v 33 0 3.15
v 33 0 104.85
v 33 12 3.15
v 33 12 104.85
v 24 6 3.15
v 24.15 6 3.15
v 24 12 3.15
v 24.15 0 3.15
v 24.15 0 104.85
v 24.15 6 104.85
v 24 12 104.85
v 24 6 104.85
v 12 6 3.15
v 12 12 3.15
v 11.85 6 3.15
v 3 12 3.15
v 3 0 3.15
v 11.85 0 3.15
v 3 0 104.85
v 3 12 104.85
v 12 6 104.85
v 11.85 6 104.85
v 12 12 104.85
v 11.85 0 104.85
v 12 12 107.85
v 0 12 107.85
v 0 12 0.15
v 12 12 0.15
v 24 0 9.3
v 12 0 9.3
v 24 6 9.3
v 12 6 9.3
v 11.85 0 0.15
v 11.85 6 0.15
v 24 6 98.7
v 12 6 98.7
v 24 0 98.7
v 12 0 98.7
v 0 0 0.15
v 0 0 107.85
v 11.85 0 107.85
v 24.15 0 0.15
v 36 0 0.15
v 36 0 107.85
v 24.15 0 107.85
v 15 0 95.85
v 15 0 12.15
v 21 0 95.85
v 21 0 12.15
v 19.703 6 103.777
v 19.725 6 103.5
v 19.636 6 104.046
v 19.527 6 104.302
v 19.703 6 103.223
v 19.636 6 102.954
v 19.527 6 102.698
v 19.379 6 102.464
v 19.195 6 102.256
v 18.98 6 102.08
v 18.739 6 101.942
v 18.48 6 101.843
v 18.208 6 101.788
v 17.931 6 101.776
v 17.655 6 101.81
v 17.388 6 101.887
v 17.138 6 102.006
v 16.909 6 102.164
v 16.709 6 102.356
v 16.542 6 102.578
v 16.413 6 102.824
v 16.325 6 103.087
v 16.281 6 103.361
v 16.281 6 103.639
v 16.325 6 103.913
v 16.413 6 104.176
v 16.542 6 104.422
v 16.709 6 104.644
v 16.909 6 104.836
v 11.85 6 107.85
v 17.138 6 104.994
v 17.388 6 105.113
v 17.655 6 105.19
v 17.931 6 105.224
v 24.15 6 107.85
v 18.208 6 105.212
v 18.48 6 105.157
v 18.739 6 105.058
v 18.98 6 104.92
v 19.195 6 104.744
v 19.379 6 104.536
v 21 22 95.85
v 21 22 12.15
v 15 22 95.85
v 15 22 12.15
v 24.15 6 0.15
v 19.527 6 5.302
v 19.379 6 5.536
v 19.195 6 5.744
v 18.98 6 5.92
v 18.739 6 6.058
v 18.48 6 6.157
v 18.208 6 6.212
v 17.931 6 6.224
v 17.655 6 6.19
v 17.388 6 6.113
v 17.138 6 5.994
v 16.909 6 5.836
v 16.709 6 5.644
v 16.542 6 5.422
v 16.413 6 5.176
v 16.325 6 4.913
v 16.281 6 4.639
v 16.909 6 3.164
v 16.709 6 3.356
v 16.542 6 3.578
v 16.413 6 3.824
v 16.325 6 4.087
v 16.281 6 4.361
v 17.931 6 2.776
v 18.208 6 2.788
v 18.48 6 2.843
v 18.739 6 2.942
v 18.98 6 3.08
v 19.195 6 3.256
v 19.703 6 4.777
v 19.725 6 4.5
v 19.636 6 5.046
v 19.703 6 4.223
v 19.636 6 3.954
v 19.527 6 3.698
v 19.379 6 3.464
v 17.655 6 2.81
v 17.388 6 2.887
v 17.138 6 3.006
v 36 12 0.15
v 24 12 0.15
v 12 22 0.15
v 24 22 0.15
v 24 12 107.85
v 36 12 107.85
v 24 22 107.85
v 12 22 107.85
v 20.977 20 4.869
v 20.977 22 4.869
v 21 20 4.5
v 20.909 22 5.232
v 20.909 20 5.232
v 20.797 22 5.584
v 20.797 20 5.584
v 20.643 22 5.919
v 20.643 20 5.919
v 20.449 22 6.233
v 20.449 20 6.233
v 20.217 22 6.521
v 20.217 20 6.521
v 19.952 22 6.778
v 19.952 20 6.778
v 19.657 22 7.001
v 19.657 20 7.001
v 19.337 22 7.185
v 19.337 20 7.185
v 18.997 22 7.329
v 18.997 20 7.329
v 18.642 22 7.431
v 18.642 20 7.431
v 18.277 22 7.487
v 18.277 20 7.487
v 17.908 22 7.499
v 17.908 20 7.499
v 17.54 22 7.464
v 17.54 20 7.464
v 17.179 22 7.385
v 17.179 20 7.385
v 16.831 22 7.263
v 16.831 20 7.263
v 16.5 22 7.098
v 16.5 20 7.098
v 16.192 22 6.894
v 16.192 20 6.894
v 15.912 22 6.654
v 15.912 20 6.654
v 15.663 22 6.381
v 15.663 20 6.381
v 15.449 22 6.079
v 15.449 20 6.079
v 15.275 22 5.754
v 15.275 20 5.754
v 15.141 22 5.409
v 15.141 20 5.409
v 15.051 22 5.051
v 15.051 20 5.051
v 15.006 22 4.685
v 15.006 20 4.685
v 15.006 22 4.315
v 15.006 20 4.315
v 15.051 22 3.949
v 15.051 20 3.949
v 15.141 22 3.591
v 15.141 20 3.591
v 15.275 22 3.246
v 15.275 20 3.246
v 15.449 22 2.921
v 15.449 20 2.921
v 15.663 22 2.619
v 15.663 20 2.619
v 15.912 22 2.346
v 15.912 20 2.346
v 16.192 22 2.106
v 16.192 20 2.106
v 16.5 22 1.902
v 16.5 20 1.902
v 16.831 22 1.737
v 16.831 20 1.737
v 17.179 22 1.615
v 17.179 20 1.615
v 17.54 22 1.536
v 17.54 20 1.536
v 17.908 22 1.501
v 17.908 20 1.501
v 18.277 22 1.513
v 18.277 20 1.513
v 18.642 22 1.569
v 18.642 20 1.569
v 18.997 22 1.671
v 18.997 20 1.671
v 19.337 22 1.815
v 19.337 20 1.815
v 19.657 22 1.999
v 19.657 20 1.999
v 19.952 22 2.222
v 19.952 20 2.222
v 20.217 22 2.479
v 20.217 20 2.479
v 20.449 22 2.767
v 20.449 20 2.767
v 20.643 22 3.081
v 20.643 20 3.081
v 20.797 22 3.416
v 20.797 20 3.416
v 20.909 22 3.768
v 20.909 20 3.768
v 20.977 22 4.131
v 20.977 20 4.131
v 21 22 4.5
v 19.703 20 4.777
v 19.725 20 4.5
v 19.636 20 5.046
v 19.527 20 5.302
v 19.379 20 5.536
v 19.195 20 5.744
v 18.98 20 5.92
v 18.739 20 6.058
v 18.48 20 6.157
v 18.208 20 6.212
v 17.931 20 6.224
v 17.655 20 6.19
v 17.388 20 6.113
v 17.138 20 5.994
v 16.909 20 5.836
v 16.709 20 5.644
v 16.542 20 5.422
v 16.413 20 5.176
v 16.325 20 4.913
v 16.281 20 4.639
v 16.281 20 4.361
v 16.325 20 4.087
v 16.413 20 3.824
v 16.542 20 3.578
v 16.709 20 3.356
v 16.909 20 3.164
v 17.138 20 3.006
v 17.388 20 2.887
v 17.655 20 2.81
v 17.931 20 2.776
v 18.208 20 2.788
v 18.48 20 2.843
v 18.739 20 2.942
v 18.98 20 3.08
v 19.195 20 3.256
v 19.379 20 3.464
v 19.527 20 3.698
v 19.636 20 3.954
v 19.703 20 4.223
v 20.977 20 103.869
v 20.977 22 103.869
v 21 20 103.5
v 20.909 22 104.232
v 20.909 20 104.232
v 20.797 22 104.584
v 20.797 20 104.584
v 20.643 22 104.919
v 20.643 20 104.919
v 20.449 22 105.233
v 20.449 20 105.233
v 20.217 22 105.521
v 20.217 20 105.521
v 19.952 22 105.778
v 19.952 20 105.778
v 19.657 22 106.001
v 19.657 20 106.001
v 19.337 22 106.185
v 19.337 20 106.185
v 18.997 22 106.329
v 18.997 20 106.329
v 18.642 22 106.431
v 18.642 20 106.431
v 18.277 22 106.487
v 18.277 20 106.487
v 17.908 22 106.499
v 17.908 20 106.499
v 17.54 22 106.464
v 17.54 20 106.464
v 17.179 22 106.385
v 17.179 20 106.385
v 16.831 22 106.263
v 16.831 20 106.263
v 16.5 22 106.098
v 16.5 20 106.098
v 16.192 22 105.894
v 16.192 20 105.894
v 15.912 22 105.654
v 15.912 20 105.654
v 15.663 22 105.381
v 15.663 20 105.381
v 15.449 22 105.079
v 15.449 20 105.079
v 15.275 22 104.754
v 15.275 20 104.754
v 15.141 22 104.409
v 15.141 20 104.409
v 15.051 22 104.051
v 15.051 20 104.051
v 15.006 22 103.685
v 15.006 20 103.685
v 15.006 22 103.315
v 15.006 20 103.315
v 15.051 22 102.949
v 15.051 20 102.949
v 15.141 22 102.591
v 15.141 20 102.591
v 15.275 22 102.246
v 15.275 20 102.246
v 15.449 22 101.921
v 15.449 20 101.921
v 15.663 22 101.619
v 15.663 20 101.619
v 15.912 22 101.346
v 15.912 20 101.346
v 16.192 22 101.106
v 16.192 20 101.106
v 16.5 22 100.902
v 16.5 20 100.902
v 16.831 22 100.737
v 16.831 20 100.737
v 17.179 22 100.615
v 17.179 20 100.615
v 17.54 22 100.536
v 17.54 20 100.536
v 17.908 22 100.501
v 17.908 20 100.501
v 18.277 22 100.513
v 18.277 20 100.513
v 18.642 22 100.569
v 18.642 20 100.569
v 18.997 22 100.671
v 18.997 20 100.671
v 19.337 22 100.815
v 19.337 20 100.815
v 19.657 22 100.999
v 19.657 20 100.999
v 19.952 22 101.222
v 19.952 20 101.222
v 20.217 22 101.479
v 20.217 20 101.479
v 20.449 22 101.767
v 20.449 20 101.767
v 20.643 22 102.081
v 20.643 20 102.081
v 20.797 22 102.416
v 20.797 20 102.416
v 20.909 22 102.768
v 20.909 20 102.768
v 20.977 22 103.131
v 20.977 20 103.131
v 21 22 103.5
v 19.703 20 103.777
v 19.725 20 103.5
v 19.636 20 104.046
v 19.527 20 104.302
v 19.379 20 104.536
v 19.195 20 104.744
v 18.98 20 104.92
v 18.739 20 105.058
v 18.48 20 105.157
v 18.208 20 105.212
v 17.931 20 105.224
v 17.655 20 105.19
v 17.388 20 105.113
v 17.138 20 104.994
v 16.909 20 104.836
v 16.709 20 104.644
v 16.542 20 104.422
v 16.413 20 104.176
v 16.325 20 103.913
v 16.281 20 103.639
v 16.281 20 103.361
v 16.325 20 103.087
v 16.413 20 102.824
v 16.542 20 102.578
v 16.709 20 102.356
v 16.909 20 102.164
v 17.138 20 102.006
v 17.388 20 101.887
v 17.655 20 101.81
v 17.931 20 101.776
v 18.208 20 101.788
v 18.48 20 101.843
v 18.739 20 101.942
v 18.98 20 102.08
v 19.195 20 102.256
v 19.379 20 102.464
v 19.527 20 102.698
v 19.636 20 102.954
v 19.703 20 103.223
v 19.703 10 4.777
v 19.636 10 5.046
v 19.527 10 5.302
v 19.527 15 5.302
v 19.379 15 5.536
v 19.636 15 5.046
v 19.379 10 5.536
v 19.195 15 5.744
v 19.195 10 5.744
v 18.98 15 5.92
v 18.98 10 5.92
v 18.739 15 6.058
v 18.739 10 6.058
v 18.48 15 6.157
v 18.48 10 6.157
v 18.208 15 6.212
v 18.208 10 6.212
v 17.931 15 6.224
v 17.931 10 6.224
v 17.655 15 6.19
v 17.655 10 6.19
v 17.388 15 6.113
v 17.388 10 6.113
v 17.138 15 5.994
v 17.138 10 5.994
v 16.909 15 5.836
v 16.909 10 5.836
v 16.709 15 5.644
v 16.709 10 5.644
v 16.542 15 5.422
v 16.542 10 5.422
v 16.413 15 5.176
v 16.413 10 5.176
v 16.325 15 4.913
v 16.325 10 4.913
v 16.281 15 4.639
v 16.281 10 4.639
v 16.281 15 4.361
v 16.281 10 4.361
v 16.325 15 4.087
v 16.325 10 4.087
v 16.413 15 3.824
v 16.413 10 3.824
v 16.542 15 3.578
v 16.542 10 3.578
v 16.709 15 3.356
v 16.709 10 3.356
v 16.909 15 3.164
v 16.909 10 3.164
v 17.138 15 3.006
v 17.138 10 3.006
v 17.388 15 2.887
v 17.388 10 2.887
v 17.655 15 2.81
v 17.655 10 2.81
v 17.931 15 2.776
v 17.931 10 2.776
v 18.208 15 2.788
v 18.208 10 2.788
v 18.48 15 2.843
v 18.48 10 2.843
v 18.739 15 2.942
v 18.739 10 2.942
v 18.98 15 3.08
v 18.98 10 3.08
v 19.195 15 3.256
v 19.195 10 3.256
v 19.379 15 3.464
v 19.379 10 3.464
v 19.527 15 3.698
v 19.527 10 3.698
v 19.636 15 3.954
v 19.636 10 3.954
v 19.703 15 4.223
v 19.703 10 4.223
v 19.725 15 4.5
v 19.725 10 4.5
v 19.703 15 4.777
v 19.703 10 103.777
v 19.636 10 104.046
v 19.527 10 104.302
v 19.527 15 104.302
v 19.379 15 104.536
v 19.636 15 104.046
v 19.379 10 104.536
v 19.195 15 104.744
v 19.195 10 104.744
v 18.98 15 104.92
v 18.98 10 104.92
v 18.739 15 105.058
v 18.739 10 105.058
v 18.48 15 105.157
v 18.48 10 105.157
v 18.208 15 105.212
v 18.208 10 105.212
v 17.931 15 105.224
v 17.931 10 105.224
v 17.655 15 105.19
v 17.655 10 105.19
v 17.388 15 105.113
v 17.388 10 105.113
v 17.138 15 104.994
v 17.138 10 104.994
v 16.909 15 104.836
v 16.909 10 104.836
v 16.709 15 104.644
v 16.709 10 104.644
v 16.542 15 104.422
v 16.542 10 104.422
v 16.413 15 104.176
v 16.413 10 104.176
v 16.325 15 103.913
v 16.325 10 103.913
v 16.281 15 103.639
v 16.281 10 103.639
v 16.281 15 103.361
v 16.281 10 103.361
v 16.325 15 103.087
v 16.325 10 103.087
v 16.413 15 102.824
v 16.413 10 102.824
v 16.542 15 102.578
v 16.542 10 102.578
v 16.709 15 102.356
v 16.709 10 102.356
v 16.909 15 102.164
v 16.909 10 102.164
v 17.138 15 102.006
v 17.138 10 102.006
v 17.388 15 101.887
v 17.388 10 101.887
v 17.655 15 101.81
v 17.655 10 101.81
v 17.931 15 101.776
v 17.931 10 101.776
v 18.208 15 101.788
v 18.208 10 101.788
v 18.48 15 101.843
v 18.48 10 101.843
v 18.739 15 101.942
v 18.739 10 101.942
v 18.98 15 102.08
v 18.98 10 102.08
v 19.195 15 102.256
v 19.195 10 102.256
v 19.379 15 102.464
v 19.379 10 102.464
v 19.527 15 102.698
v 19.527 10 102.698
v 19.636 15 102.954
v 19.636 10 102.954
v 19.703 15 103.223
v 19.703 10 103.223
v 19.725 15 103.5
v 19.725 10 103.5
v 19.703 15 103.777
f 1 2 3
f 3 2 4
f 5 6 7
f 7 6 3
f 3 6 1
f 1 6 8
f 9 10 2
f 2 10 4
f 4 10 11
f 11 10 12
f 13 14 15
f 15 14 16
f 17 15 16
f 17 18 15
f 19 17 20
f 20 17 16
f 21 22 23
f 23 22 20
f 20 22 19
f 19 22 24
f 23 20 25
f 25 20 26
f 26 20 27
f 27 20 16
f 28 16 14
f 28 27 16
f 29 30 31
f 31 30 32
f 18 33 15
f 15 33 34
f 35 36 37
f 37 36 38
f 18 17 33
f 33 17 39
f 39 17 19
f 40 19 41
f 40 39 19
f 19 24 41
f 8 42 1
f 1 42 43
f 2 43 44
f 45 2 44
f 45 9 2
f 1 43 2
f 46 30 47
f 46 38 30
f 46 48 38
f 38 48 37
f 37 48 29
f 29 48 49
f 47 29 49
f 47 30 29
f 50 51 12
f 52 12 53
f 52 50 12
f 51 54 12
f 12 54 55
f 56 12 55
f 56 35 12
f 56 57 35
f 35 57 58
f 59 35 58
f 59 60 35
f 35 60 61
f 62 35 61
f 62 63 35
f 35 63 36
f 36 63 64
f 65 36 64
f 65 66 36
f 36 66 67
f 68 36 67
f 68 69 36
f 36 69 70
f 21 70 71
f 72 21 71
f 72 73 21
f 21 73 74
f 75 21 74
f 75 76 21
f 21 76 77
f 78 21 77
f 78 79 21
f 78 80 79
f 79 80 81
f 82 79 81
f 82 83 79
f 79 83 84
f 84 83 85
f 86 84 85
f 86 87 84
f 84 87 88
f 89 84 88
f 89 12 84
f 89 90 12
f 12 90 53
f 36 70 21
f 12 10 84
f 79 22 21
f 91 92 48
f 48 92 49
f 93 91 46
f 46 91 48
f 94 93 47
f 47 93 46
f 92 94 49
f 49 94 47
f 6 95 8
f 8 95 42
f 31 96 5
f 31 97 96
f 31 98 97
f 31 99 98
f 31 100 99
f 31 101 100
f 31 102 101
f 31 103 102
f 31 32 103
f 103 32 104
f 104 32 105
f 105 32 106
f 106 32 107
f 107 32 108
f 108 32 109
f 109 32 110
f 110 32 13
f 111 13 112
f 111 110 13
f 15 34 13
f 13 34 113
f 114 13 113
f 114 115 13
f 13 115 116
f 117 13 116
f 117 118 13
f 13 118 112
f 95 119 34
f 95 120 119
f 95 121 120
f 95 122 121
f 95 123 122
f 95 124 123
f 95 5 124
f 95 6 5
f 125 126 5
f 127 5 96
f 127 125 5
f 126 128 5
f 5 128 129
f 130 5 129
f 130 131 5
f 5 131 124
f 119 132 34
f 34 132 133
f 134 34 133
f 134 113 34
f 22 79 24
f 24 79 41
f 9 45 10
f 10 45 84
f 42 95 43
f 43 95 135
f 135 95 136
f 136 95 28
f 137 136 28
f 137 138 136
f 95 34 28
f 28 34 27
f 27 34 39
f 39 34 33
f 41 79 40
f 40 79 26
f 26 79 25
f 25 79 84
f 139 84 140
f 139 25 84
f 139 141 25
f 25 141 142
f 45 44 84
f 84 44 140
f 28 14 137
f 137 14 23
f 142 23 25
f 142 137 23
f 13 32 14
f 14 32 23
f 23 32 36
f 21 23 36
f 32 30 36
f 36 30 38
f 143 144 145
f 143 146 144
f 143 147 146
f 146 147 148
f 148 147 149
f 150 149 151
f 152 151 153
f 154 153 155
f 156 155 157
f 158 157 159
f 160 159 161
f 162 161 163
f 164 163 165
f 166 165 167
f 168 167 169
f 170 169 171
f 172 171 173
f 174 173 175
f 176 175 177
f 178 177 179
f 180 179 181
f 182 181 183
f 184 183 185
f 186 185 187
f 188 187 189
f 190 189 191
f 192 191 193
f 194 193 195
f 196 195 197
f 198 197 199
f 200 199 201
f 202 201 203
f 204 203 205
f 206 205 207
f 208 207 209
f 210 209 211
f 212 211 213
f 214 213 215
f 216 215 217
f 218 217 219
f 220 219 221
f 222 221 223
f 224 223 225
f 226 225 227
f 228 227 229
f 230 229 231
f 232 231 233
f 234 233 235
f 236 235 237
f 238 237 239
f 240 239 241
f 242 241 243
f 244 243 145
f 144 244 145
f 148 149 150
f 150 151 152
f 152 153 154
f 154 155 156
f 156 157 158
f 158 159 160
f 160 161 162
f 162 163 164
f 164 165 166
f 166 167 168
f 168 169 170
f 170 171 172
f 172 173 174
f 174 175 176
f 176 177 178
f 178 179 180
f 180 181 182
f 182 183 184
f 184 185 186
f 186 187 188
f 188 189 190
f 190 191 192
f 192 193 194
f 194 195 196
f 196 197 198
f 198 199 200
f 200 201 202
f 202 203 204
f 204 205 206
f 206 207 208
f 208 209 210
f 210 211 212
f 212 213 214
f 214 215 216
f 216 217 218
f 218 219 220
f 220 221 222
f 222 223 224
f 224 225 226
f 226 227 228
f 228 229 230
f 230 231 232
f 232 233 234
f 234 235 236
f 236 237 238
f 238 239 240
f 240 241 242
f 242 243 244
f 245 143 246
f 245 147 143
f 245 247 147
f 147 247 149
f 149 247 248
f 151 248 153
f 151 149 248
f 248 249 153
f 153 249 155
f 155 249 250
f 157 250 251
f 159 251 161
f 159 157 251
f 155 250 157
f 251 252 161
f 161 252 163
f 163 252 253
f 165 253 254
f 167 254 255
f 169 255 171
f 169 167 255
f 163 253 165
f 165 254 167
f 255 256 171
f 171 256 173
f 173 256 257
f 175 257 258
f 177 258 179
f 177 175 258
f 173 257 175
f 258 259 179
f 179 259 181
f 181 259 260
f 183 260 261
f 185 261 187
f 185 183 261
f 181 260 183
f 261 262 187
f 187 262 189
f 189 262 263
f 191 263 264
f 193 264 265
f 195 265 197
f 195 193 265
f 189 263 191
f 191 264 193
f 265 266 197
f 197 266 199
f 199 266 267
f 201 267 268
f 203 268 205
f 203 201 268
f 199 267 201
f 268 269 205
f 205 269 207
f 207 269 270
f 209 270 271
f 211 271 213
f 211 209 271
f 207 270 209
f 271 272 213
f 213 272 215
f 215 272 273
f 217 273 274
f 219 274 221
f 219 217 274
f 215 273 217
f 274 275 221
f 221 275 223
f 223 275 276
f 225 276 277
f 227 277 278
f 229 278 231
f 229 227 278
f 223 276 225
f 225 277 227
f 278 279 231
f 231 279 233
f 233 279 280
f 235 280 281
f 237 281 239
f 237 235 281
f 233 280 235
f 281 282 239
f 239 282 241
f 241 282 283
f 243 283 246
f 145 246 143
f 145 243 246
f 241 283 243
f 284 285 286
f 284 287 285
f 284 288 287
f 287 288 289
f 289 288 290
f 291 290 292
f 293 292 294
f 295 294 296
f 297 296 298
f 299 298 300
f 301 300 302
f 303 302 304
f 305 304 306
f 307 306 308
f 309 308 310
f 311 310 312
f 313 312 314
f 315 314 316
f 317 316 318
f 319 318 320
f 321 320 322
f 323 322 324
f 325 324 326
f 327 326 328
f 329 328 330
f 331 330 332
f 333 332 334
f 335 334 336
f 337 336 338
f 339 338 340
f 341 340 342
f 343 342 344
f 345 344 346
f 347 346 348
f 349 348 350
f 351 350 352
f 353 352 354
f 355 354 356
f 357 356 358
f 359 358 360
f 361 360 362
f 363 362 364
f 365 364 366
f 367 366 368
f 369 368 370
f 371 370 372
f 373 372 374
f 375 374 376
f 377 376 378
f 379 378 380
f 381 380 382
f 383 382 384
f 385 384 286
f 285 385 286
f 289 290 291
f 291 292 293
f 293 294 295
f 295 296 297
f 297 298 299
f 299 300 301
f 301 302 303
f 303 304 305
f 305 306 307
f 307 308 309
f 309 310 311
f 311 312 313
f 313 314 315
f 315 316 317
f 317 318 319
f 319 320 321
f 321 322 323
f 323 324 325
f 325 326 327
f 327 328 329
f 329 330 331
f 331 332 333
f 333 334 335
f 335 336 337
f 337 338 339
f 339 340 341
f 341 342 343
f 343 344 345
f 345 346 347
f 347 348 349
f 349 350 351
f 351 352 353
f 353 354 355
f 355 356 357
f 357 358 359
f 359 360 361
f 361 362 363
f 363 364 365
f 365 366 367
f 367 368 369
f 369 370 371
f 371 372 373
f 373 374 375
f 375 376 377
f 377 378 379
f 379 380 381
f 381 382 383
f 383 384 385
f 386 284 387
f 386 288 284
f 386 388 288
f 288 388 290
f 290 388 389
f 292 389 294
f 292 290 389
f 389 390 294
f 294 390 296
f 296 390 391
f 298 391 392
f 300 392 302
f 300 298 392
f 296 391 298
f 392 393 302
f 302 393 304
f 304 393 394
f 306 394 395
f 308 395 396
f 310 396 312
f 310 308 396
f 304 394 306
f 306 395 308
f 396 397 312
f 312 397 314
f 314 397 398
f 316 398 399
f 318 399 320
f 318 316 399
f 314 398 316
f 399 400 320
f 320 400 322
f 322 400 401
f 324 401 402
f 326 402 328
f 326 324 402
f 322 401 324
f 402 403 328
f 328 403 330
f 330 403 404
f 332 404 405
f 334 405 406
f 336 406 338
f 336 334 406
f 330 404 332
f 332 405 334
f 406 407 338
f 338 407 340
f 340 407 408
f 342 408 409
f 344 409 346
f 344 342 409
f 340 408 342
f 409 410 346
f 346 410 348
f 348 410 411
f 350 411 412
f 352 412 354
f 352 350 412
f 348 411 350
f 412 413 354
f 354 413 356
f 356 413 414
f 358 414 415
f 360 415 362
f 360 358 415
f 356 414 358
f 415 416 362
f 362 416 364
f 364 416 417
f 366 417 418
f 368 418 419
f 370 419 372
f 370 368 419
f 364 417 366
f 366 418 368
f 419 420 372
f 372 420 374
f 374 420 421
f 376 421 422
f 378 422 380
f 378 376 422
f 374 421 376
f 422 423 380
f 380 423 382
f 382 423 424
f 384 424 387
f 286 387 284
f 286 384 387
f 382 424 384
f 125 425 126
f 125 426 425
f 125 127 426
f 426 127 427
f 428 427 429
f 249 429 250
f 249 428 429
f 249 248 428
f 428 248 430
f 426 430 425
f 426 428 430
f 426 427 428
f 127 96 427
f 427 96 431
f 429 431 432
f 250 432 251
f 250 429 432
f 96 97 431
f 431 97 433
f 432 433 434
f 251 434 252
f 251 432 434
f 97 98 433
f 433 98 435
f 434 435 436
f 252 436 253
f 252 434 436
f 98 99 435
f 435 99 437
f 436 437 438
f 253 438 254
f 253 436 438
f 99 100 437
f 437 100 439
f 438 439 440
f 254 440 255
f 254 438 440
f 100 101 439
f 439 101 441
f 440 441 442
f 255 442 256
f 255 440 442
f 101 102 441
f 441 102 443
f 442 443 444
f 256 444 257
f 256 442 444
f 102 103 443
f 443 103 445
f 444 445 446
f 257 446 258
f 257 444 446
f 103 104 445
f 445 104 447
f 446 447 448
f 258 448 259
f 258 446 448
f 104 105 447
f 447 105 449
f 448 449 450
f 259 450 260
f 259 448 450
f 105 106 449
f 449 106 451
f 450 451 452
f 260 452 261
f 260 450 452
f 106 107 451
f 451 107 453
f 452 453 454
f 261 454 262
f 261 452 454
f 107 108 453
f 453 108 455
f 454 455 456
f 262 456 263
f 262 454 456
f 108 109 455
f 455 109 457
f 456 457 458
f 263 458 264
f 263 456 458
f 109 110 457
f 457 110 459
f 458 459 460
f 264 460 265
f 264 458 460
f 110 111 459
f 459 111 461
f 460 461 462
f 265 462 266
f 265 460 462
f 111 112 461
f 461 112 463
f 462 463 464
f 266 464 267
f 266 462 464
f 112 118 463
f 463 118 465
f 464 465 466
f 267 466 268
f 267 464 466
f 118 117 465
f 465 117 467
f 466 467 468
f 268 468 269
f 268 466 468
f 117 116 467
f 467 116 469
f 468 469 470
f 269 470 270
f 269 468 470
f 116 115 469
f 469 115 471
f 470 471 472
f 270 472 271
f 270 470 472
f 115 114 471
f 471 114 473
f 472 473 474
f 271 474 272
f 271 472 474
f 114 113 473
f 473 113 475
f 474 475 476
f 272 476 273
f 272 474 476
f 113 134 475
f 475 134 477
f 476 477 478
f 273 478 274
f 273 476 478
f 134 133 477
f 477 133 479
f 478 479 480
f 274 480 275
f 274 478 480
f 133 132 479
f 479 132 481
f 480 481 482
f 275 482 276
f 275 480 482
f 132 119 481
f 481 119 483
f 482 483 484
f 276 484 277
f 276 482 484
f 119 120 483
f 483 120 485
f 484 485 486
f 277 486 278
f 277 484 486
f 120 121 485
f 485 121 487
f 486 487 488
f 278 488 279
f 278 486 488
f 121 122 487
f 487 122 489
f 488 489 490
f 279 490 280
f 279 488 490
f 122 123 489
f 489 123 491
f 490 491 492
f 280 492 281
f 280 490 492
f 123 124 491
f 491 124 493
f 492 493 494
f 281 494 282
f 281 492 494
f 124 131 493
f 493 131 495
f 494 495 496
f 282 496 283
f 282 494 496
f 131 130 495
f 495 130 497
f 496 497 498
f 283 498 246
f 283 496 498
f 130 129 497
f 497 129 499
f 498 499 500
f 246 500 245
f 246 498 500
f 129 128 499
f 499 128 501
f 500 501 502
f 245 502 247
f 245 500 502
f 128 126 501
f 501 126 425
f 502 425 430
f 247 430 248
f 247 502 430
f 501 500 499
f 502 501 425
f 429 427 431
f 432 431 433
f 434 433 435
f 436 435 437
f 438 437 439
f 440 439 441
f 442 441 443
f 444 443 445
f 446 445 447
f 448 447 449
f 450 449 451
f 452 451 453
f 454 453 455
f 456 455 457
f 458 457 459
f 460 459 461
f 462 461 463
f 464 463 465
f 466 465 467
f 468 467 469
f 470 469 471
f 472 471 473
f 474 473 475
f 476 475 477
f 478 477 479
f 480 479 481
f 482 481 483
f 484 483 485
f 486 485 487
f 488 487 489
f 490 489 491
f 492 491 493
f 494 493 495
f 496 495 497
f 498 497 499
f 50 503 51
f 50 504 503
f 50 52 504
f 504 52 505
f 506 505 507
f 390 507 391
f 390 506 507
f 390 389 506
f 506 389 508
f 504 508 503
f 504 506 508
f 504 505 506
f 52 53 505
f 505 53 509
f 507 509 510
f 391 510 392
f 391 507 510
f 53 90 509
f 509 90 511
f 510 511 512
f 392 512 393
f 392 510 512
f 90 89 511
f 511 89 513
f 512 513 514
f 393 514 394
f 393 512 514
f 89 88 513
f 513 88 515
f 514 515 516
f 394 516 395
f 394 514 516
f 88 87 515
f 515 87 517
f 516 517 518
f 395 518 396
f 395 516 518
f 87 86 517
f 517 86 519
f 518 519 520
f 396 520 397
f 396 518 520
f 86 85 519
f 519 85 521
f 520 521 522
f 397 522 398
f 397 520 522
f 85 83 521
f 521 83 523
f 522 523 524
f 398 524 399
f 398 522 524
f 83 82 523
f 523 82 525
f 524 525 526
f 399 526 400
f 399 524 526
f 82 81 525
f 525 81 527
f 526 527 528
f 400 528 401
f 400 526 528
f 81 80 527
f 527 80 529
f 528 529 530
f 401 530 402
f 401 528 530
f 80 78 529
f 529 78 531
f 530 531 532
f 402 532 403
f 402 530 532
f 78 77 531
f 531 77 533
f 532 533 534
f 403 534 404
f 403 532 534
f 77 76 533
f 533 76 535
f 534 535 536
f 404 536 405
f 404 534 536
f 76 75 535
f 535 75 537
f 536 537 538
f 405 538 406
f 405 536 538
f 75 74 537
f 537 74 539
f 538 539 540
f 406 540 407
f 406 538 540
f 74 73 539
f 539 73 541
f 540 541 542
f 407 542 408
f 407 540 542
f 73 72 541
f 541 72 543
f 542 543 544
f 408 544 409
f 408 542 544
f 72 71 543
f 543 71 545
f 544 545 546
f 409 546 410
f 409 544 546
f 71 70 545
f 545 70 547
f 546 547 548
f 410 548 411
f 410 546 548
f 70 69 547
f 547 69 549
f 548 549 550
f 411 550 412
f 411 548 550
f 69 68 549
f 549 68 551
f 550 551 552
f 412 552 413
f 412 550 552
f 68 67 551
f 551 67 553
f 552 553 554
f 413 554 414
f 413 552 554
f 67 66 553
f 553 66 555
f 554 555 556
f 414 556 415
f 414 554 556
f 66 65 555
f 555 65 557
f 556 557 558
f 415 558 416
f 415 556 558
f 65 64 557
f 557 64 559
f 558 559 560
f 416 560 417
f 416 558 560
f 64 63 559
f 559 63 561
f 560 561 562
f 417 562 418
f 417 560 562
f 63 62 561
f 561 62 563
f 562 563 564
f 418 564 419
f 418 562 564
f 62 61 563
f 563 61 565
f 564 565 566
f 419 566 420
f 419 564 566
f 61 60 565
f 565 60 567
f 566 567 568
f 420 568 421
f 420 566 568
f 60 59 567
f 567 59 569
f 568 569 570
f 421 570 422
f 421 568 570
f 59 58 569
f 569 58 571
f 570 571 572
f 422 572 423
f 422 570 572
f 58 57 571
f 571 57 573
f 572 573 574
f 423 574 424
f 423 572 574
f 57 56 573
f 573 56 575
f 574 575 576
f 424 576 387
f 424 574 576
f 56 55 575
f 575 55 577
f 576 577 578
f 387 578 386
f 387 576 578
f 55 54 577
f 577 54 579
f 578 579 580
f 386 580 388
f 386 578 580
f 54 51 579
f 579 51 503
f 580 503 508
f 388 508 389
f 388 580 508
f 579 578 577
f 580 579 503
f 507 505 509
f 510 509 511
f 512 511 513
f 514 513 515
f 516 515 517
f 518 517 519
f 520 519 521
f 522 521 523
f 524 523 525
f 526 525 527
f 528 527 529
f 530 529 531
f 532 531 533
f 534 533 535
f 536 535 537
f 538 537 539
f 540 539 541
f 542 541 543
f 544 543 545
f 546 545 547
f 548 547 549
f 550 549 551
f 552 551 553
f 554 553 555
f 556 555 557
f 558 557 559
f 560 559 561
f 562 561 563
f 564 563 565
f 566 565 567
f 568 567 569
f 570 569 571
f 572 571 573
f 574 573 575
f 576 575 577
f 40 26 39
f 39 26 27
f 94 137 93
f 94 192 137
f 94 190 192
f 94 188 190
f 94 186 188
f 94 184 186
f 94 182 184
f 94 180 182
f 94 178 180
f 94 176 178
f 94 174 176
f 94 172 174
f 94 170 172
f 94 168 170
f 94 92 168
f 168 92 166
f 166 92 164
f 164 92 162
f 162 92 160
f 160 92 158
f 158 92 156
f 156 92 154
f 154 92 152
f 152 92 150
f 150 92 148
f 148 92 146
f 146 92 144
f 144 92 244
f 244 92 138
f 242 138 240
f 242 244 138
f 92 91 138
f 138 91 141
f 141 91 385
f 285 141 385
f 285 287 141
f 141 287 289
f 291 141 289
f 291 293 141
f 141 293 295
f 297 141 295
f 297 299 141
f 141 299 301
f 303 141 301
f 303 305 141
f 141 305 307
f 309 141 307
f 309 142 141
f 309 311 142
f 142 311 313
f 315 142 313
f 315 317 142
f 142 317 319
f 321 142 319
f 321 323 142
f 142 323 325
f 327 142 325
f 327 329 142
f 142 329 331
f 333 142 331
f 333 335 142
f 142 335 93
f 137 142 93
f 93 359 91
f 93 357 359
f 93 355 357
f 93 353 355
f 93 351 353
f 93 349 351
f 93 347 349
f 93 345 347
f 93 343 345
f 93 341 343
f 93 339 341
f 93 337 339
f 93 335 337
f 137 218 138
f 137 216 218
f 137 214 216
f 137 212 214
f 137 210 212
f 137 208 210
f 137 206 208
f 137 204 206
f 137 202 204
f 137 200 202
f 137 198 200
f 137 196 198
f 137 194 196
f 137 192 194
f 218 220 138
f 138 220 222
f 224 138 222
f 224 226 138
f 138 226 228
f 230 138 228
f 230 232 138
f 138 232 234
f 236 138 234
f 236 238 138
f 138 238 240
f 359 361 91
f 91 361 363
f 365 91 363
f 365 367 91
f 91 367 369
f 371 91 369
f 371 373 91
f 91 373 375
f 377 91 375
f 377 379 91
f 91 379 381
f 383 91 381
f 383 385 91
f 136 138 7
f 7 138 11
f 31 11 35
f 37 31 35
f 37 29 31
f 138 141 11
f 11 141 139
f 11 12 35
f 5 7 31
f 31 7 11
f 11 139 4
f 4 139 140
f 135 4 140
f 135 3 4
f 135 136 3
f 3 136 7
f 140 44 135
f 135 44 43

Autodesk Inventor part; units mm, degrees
ref_plane "YZ Plane" through (0, 0, 0) normal (1, 0, 0) x (0, 1, 0)
ref_plane "XZ Plane" through (0, 0, 0) normal (0, 1, 0) x (-1, 0, 0)
ref_plane "XY Plane" through (0, 0, 0) normal (0, 0, 1) x (1, 0, 0)
sketch "Sketch1" plane through (0, 0, 0) normal (0, 0, 1) x (1, 0, 0)
  line L0 (0, 0) -> (36, 0)
  line L1 (36, 0) -> (36, 12)
  line L2 (36, 12) -> (24, 12)
  line L3 (24, 12) -> (24, 22)
  line L4 (24, 22) -> (12, 22)
  line L5 (12, 22) -> (12, 12)
  line L6 (12, 12) -> (0, 12)
  line L7 (0, 12) -> (0, 0)
  dimension "d0" = 36
  dimension "d1" = 12
  dimension "d2" = 12
  dimension "d3" = 10
  dimension "d4" = 12
extrude "Extrusion1" add sketch "Sketch1" along normal blind 108
sketch "Sketch2" plane through (0, 0, 0) normal (0, -1, 0) x (1, 0, 0)
  circle A0 centre (18, 4.5) radius 1.725
  line L0 (0, 0) -> (36, 0) projected
  line L1 (36, 0) -> (36, 108) projected
  circle A1 centre (18, 103.5) radius 1.725
  line L2 (0, 108) -> (36, 108) projected
  dimension "d7" = 3.45
  dimension "d8" = 4.5
  dimension "d9" = 18
  dimension "d10" = 3.45
  dimension "d11" = 18
  dimension "d12" = 4.5
extrude "Extrusion2" cut sketch "Sketch2" against normal blind 20
sketch "Sketch3" plane through (12, 22, 0) normal (0, 1, 0) x (1, 0, 0)
  circle A0 centre (6, -4.5) radius 1.725 projected
  circle A1 centre (6, -4.5) radius 3
  circle A2 centre (6, -103.5) radius 1.725 projected
  circle A3 centre (6, -103.5) radius 3
  point P0 (-12, 0)
  dimension "d15" = 6
  dimension "d16" = 6
extrude "Extrusion3" cut sketch "Sketch3" against normal blind 2 contours A0 | A1 | A2 | A3
sketch "Sketch4" plane through (36, 0, 0) normal (1, 0, 0) x (0, 0, -1)
  line L0 (-108, 0) -> (-107.85, 0)
  line L1 (0, 0) -> (-108, 0) projected
  line L2 (-107.85, 0) -> (-107.85, 12)
  line L3 (0, 12) -> (-108, 12) projected
  line L4 (-108, 0) -> (-108, 12) projected
  line L5 (-108, 12) -> (-108, 0)
  line L6 (-108, 22) -> (-107.85, 22)
  line L7 (-107.85, 12) -> (-108, 12)
  line L8 (0, 0) -> (-0.15, 0)
  line L9 (-0.15, 0) -> (-0.15, 12)
  line L10 (-0.15, 12) -> (0, 12)
  line L11 (0, 12) -> (0, 0)
  line L12 (0, 22) -> (-0.15, 22)
  line L13 (-0.15, 12) -> (0, 12)
  dimension "d19" = 0.15
  dimension "d20" = 12
  dimension "d21" = 0.15
  dimension "d22" = 0.15
extrude "Extrusion4" cut sketch "Sketch4" against normal through all contours L4 L3 L2 L0 | L9 L3 L11 L1
sketch "Sketch5" plane through (24, 22, 108) normal (1, 0, 0) x (0, 0, -1)
  line L0 (108, -10) -> (108, 0) projected
  line L1 (108, 0) -> (0, 0) projected
  line L2 (108, -10) -> (107.85, -10)
  line L3 (107.85, -10) -> (107.85, 0)
  line L4 (107.85, 0) -> (108, 0)
  line L5 (108, 0) -> (108, -10)
  line L6 (0.15, -10) -> (0, -10) projected
  line L7 (0, -10) -> (0, 0) projected
  line L8 (0.15, -10) -> (0, -10)
  line L9 (0, -10) -> (0, 0)
  line L10 (0, 0) -> (0.15, 0)
  line L11 (0.15, 0) -> (0.15, -10)
  point P0 (108, -22)
  dimension "d25" = 0.15
extrude "Extrusion5" cut sketch "Sketch5" against normal through all
sketch "Sketch6" plane through (12, 22, 0.15) normal (0, 1, 0) x (1, 0, 0)
  line L0 (0, 0) -> (0, -107.7) projected
  line L1 (12, 0) -> (12, -107.7) projected
  line L2 (0, -98.85) -> (12, -98.85)
  line L3 (12, -98.85) -> (12, -8.85)
  line L4 (12, -8.85) -> (0, -8.85)
  line L5 (0, -8.85) -> (0, -98.85)
  point P0 (-12, 0.15)
  dimension "d28" = 8.85
  dimension "d29" = 8.85
sketch "Sketch7" plane through (0, 0, 107.85) normal (0, -1, 0) x (1, 0, 0)
  line L0 (0, -107.7) -> (36, -107.7) projected
  line L1 (11.85, -107.7) -> (24.15, -107.7)
  line L2 (24.15, -107.7) -> (24.15, -98.55)
  line L3 (24.15, -98.55) -> (11.85, -98.55)
  line L4 (11.85, -98.55) -> (11.85, -107.7)
  line L5 (0, 0) -> (12, 0) projected
  line L6 (11.85, 0) -> (24.15, 0)
  line L7 (24.15, 0) -> (24.15, -9.15)
  line L8 (24.15, -9.15) -> (11.85, -9.15)
  line L9 (11.85, -9.15) -> (11.85, 0)
  line L10 (36, -107.7) -> (36, 0) projected
  point P0 (0, -107.85)
  dimension "d30" = 11.85
  dimension "d31" = 11.85
  dimension "d32" = 9.15
  dimension "d33" = 11.85
  dimension "d34" = 11.85
  dimension "d35" = 9.15
extrude "Extrusion6" cut sketch "Sketch7" against normal blind 6
sketch "Sketch8" plane through (36, 0, 0.15) normal (0, -1, 0) x (1, 0, 0)
  line L0 (-21, 95.7) -> (-15, 95.7)
  line L1 (-15, 95.7) -> (-15, 12)
  line L2 (-15, 12) -> (-21, 12)
  line L3 (-21, 12) -> (-21, 95.7)
  line L4 (-11.85, 0) -> (-24.15, 0) projected
  line L5 (0, 107.7) -> (-11.85, 107.7) projected
  line L6 (-24, 0) -> (-24, 107.7) projected
  line L7 (-12, 0) -> (-12, 107.7) projected
  point P0 (-36, -0.15)
  dimension "d38" = 12
  dimension "d39" = 12
  dimension "d40" = 3
  dimension "d41" = 3
extrude "Extrusion7" cut sketch "Sketch8" against normal through all
sketch "Sketch9" plane through (24, 12, 107.85) normal (0, 1, 0) x (1, 0, 0)
  line L0 (9, 3) -> (0, 3)
  line L1 (0, 3) -> (0, 104.7)
  line L2 (0, 104.7) -> (9, 104.7)
  line L3 (9, 104.7) -> (9, 3)
  line L4 (-12, 3) -> (-21, 3)
  line L5 (-21, 3) -> (-21, 104.7)
  line L6 (-21, 104.7) -> (-12, 104.7)
  line L7 (-12, 104.7) -> (-12, 3)
  line L8 (12, 0) -> (0.15, 0) projected
  line L9 (12, 107.7) -> (0, 107.7) projected
  line L10 (12, 107.7) -> (12, 0) projected
  line L11 (-24, 107.7) -> (-24, 0) projected
  line L12 (-12, 107.7) -> (-24, 107.7) projected
  line L13 (-24, 0) -> (-12, 0) projected
  line L14 (-12, 107.7) -> (-12, 0) projected
  line L15 (0, 107.7) -> (0, 0) projected
  point P0 (-24, 107.85)
  dimension "d44" = 3
  dimension "d45" = 3
  dimension "d46" = 3
  dimension "d47" = 3
  dimension "d48" = 3
  dimension "d49" = 3
  dimension "d50" = 0
  dimension "d51" = 0
extrude "Extrusion8" cut sketch "Sketch9" against normal through all contours L0 L1 L2 L3 | L4 L5 L6 L7
sketch "Sketch10" plane through (12, 0, 98.7) normal (0, -1, 0) x (1, 0, 0)
  line L0 (3, -86.55) -> (3, -2.85) projected
  line L1 (9, -2.85) -> (9, -86.55) projected
  line L2 (3, -2.85) -> (9, -2.85)
  line L3 (9, -2.85) -> (9, -86.55)
  line L4 (9, -86.55) -> (3, -86.55)
  line L5 (3, -86.55) -> (3, -2.85)
  line L6 (0, 0) -> (0, -89.4) projected
  line L7 (12, -98.55) -> (12, 9.15) projected
  line L8 (0, 0) -> (12, 0)
  line L9 (12, 0) -> (12, -89.4)
  line L10 (12, -89.4) -> (0, -89.4)
  line L11 (0, -89.4) -> (0, 0)
  line L12 (12, -89.4) -> (0, -89.4)
  line L13 (0, -89.4) -> (0, 0)
  line L14 (0, 0) -> (12, 0)
  line L15 (12, 0) -> (12, -89.4)
  point P0 (-12, -98.7)
properties part number "centerbeam"
